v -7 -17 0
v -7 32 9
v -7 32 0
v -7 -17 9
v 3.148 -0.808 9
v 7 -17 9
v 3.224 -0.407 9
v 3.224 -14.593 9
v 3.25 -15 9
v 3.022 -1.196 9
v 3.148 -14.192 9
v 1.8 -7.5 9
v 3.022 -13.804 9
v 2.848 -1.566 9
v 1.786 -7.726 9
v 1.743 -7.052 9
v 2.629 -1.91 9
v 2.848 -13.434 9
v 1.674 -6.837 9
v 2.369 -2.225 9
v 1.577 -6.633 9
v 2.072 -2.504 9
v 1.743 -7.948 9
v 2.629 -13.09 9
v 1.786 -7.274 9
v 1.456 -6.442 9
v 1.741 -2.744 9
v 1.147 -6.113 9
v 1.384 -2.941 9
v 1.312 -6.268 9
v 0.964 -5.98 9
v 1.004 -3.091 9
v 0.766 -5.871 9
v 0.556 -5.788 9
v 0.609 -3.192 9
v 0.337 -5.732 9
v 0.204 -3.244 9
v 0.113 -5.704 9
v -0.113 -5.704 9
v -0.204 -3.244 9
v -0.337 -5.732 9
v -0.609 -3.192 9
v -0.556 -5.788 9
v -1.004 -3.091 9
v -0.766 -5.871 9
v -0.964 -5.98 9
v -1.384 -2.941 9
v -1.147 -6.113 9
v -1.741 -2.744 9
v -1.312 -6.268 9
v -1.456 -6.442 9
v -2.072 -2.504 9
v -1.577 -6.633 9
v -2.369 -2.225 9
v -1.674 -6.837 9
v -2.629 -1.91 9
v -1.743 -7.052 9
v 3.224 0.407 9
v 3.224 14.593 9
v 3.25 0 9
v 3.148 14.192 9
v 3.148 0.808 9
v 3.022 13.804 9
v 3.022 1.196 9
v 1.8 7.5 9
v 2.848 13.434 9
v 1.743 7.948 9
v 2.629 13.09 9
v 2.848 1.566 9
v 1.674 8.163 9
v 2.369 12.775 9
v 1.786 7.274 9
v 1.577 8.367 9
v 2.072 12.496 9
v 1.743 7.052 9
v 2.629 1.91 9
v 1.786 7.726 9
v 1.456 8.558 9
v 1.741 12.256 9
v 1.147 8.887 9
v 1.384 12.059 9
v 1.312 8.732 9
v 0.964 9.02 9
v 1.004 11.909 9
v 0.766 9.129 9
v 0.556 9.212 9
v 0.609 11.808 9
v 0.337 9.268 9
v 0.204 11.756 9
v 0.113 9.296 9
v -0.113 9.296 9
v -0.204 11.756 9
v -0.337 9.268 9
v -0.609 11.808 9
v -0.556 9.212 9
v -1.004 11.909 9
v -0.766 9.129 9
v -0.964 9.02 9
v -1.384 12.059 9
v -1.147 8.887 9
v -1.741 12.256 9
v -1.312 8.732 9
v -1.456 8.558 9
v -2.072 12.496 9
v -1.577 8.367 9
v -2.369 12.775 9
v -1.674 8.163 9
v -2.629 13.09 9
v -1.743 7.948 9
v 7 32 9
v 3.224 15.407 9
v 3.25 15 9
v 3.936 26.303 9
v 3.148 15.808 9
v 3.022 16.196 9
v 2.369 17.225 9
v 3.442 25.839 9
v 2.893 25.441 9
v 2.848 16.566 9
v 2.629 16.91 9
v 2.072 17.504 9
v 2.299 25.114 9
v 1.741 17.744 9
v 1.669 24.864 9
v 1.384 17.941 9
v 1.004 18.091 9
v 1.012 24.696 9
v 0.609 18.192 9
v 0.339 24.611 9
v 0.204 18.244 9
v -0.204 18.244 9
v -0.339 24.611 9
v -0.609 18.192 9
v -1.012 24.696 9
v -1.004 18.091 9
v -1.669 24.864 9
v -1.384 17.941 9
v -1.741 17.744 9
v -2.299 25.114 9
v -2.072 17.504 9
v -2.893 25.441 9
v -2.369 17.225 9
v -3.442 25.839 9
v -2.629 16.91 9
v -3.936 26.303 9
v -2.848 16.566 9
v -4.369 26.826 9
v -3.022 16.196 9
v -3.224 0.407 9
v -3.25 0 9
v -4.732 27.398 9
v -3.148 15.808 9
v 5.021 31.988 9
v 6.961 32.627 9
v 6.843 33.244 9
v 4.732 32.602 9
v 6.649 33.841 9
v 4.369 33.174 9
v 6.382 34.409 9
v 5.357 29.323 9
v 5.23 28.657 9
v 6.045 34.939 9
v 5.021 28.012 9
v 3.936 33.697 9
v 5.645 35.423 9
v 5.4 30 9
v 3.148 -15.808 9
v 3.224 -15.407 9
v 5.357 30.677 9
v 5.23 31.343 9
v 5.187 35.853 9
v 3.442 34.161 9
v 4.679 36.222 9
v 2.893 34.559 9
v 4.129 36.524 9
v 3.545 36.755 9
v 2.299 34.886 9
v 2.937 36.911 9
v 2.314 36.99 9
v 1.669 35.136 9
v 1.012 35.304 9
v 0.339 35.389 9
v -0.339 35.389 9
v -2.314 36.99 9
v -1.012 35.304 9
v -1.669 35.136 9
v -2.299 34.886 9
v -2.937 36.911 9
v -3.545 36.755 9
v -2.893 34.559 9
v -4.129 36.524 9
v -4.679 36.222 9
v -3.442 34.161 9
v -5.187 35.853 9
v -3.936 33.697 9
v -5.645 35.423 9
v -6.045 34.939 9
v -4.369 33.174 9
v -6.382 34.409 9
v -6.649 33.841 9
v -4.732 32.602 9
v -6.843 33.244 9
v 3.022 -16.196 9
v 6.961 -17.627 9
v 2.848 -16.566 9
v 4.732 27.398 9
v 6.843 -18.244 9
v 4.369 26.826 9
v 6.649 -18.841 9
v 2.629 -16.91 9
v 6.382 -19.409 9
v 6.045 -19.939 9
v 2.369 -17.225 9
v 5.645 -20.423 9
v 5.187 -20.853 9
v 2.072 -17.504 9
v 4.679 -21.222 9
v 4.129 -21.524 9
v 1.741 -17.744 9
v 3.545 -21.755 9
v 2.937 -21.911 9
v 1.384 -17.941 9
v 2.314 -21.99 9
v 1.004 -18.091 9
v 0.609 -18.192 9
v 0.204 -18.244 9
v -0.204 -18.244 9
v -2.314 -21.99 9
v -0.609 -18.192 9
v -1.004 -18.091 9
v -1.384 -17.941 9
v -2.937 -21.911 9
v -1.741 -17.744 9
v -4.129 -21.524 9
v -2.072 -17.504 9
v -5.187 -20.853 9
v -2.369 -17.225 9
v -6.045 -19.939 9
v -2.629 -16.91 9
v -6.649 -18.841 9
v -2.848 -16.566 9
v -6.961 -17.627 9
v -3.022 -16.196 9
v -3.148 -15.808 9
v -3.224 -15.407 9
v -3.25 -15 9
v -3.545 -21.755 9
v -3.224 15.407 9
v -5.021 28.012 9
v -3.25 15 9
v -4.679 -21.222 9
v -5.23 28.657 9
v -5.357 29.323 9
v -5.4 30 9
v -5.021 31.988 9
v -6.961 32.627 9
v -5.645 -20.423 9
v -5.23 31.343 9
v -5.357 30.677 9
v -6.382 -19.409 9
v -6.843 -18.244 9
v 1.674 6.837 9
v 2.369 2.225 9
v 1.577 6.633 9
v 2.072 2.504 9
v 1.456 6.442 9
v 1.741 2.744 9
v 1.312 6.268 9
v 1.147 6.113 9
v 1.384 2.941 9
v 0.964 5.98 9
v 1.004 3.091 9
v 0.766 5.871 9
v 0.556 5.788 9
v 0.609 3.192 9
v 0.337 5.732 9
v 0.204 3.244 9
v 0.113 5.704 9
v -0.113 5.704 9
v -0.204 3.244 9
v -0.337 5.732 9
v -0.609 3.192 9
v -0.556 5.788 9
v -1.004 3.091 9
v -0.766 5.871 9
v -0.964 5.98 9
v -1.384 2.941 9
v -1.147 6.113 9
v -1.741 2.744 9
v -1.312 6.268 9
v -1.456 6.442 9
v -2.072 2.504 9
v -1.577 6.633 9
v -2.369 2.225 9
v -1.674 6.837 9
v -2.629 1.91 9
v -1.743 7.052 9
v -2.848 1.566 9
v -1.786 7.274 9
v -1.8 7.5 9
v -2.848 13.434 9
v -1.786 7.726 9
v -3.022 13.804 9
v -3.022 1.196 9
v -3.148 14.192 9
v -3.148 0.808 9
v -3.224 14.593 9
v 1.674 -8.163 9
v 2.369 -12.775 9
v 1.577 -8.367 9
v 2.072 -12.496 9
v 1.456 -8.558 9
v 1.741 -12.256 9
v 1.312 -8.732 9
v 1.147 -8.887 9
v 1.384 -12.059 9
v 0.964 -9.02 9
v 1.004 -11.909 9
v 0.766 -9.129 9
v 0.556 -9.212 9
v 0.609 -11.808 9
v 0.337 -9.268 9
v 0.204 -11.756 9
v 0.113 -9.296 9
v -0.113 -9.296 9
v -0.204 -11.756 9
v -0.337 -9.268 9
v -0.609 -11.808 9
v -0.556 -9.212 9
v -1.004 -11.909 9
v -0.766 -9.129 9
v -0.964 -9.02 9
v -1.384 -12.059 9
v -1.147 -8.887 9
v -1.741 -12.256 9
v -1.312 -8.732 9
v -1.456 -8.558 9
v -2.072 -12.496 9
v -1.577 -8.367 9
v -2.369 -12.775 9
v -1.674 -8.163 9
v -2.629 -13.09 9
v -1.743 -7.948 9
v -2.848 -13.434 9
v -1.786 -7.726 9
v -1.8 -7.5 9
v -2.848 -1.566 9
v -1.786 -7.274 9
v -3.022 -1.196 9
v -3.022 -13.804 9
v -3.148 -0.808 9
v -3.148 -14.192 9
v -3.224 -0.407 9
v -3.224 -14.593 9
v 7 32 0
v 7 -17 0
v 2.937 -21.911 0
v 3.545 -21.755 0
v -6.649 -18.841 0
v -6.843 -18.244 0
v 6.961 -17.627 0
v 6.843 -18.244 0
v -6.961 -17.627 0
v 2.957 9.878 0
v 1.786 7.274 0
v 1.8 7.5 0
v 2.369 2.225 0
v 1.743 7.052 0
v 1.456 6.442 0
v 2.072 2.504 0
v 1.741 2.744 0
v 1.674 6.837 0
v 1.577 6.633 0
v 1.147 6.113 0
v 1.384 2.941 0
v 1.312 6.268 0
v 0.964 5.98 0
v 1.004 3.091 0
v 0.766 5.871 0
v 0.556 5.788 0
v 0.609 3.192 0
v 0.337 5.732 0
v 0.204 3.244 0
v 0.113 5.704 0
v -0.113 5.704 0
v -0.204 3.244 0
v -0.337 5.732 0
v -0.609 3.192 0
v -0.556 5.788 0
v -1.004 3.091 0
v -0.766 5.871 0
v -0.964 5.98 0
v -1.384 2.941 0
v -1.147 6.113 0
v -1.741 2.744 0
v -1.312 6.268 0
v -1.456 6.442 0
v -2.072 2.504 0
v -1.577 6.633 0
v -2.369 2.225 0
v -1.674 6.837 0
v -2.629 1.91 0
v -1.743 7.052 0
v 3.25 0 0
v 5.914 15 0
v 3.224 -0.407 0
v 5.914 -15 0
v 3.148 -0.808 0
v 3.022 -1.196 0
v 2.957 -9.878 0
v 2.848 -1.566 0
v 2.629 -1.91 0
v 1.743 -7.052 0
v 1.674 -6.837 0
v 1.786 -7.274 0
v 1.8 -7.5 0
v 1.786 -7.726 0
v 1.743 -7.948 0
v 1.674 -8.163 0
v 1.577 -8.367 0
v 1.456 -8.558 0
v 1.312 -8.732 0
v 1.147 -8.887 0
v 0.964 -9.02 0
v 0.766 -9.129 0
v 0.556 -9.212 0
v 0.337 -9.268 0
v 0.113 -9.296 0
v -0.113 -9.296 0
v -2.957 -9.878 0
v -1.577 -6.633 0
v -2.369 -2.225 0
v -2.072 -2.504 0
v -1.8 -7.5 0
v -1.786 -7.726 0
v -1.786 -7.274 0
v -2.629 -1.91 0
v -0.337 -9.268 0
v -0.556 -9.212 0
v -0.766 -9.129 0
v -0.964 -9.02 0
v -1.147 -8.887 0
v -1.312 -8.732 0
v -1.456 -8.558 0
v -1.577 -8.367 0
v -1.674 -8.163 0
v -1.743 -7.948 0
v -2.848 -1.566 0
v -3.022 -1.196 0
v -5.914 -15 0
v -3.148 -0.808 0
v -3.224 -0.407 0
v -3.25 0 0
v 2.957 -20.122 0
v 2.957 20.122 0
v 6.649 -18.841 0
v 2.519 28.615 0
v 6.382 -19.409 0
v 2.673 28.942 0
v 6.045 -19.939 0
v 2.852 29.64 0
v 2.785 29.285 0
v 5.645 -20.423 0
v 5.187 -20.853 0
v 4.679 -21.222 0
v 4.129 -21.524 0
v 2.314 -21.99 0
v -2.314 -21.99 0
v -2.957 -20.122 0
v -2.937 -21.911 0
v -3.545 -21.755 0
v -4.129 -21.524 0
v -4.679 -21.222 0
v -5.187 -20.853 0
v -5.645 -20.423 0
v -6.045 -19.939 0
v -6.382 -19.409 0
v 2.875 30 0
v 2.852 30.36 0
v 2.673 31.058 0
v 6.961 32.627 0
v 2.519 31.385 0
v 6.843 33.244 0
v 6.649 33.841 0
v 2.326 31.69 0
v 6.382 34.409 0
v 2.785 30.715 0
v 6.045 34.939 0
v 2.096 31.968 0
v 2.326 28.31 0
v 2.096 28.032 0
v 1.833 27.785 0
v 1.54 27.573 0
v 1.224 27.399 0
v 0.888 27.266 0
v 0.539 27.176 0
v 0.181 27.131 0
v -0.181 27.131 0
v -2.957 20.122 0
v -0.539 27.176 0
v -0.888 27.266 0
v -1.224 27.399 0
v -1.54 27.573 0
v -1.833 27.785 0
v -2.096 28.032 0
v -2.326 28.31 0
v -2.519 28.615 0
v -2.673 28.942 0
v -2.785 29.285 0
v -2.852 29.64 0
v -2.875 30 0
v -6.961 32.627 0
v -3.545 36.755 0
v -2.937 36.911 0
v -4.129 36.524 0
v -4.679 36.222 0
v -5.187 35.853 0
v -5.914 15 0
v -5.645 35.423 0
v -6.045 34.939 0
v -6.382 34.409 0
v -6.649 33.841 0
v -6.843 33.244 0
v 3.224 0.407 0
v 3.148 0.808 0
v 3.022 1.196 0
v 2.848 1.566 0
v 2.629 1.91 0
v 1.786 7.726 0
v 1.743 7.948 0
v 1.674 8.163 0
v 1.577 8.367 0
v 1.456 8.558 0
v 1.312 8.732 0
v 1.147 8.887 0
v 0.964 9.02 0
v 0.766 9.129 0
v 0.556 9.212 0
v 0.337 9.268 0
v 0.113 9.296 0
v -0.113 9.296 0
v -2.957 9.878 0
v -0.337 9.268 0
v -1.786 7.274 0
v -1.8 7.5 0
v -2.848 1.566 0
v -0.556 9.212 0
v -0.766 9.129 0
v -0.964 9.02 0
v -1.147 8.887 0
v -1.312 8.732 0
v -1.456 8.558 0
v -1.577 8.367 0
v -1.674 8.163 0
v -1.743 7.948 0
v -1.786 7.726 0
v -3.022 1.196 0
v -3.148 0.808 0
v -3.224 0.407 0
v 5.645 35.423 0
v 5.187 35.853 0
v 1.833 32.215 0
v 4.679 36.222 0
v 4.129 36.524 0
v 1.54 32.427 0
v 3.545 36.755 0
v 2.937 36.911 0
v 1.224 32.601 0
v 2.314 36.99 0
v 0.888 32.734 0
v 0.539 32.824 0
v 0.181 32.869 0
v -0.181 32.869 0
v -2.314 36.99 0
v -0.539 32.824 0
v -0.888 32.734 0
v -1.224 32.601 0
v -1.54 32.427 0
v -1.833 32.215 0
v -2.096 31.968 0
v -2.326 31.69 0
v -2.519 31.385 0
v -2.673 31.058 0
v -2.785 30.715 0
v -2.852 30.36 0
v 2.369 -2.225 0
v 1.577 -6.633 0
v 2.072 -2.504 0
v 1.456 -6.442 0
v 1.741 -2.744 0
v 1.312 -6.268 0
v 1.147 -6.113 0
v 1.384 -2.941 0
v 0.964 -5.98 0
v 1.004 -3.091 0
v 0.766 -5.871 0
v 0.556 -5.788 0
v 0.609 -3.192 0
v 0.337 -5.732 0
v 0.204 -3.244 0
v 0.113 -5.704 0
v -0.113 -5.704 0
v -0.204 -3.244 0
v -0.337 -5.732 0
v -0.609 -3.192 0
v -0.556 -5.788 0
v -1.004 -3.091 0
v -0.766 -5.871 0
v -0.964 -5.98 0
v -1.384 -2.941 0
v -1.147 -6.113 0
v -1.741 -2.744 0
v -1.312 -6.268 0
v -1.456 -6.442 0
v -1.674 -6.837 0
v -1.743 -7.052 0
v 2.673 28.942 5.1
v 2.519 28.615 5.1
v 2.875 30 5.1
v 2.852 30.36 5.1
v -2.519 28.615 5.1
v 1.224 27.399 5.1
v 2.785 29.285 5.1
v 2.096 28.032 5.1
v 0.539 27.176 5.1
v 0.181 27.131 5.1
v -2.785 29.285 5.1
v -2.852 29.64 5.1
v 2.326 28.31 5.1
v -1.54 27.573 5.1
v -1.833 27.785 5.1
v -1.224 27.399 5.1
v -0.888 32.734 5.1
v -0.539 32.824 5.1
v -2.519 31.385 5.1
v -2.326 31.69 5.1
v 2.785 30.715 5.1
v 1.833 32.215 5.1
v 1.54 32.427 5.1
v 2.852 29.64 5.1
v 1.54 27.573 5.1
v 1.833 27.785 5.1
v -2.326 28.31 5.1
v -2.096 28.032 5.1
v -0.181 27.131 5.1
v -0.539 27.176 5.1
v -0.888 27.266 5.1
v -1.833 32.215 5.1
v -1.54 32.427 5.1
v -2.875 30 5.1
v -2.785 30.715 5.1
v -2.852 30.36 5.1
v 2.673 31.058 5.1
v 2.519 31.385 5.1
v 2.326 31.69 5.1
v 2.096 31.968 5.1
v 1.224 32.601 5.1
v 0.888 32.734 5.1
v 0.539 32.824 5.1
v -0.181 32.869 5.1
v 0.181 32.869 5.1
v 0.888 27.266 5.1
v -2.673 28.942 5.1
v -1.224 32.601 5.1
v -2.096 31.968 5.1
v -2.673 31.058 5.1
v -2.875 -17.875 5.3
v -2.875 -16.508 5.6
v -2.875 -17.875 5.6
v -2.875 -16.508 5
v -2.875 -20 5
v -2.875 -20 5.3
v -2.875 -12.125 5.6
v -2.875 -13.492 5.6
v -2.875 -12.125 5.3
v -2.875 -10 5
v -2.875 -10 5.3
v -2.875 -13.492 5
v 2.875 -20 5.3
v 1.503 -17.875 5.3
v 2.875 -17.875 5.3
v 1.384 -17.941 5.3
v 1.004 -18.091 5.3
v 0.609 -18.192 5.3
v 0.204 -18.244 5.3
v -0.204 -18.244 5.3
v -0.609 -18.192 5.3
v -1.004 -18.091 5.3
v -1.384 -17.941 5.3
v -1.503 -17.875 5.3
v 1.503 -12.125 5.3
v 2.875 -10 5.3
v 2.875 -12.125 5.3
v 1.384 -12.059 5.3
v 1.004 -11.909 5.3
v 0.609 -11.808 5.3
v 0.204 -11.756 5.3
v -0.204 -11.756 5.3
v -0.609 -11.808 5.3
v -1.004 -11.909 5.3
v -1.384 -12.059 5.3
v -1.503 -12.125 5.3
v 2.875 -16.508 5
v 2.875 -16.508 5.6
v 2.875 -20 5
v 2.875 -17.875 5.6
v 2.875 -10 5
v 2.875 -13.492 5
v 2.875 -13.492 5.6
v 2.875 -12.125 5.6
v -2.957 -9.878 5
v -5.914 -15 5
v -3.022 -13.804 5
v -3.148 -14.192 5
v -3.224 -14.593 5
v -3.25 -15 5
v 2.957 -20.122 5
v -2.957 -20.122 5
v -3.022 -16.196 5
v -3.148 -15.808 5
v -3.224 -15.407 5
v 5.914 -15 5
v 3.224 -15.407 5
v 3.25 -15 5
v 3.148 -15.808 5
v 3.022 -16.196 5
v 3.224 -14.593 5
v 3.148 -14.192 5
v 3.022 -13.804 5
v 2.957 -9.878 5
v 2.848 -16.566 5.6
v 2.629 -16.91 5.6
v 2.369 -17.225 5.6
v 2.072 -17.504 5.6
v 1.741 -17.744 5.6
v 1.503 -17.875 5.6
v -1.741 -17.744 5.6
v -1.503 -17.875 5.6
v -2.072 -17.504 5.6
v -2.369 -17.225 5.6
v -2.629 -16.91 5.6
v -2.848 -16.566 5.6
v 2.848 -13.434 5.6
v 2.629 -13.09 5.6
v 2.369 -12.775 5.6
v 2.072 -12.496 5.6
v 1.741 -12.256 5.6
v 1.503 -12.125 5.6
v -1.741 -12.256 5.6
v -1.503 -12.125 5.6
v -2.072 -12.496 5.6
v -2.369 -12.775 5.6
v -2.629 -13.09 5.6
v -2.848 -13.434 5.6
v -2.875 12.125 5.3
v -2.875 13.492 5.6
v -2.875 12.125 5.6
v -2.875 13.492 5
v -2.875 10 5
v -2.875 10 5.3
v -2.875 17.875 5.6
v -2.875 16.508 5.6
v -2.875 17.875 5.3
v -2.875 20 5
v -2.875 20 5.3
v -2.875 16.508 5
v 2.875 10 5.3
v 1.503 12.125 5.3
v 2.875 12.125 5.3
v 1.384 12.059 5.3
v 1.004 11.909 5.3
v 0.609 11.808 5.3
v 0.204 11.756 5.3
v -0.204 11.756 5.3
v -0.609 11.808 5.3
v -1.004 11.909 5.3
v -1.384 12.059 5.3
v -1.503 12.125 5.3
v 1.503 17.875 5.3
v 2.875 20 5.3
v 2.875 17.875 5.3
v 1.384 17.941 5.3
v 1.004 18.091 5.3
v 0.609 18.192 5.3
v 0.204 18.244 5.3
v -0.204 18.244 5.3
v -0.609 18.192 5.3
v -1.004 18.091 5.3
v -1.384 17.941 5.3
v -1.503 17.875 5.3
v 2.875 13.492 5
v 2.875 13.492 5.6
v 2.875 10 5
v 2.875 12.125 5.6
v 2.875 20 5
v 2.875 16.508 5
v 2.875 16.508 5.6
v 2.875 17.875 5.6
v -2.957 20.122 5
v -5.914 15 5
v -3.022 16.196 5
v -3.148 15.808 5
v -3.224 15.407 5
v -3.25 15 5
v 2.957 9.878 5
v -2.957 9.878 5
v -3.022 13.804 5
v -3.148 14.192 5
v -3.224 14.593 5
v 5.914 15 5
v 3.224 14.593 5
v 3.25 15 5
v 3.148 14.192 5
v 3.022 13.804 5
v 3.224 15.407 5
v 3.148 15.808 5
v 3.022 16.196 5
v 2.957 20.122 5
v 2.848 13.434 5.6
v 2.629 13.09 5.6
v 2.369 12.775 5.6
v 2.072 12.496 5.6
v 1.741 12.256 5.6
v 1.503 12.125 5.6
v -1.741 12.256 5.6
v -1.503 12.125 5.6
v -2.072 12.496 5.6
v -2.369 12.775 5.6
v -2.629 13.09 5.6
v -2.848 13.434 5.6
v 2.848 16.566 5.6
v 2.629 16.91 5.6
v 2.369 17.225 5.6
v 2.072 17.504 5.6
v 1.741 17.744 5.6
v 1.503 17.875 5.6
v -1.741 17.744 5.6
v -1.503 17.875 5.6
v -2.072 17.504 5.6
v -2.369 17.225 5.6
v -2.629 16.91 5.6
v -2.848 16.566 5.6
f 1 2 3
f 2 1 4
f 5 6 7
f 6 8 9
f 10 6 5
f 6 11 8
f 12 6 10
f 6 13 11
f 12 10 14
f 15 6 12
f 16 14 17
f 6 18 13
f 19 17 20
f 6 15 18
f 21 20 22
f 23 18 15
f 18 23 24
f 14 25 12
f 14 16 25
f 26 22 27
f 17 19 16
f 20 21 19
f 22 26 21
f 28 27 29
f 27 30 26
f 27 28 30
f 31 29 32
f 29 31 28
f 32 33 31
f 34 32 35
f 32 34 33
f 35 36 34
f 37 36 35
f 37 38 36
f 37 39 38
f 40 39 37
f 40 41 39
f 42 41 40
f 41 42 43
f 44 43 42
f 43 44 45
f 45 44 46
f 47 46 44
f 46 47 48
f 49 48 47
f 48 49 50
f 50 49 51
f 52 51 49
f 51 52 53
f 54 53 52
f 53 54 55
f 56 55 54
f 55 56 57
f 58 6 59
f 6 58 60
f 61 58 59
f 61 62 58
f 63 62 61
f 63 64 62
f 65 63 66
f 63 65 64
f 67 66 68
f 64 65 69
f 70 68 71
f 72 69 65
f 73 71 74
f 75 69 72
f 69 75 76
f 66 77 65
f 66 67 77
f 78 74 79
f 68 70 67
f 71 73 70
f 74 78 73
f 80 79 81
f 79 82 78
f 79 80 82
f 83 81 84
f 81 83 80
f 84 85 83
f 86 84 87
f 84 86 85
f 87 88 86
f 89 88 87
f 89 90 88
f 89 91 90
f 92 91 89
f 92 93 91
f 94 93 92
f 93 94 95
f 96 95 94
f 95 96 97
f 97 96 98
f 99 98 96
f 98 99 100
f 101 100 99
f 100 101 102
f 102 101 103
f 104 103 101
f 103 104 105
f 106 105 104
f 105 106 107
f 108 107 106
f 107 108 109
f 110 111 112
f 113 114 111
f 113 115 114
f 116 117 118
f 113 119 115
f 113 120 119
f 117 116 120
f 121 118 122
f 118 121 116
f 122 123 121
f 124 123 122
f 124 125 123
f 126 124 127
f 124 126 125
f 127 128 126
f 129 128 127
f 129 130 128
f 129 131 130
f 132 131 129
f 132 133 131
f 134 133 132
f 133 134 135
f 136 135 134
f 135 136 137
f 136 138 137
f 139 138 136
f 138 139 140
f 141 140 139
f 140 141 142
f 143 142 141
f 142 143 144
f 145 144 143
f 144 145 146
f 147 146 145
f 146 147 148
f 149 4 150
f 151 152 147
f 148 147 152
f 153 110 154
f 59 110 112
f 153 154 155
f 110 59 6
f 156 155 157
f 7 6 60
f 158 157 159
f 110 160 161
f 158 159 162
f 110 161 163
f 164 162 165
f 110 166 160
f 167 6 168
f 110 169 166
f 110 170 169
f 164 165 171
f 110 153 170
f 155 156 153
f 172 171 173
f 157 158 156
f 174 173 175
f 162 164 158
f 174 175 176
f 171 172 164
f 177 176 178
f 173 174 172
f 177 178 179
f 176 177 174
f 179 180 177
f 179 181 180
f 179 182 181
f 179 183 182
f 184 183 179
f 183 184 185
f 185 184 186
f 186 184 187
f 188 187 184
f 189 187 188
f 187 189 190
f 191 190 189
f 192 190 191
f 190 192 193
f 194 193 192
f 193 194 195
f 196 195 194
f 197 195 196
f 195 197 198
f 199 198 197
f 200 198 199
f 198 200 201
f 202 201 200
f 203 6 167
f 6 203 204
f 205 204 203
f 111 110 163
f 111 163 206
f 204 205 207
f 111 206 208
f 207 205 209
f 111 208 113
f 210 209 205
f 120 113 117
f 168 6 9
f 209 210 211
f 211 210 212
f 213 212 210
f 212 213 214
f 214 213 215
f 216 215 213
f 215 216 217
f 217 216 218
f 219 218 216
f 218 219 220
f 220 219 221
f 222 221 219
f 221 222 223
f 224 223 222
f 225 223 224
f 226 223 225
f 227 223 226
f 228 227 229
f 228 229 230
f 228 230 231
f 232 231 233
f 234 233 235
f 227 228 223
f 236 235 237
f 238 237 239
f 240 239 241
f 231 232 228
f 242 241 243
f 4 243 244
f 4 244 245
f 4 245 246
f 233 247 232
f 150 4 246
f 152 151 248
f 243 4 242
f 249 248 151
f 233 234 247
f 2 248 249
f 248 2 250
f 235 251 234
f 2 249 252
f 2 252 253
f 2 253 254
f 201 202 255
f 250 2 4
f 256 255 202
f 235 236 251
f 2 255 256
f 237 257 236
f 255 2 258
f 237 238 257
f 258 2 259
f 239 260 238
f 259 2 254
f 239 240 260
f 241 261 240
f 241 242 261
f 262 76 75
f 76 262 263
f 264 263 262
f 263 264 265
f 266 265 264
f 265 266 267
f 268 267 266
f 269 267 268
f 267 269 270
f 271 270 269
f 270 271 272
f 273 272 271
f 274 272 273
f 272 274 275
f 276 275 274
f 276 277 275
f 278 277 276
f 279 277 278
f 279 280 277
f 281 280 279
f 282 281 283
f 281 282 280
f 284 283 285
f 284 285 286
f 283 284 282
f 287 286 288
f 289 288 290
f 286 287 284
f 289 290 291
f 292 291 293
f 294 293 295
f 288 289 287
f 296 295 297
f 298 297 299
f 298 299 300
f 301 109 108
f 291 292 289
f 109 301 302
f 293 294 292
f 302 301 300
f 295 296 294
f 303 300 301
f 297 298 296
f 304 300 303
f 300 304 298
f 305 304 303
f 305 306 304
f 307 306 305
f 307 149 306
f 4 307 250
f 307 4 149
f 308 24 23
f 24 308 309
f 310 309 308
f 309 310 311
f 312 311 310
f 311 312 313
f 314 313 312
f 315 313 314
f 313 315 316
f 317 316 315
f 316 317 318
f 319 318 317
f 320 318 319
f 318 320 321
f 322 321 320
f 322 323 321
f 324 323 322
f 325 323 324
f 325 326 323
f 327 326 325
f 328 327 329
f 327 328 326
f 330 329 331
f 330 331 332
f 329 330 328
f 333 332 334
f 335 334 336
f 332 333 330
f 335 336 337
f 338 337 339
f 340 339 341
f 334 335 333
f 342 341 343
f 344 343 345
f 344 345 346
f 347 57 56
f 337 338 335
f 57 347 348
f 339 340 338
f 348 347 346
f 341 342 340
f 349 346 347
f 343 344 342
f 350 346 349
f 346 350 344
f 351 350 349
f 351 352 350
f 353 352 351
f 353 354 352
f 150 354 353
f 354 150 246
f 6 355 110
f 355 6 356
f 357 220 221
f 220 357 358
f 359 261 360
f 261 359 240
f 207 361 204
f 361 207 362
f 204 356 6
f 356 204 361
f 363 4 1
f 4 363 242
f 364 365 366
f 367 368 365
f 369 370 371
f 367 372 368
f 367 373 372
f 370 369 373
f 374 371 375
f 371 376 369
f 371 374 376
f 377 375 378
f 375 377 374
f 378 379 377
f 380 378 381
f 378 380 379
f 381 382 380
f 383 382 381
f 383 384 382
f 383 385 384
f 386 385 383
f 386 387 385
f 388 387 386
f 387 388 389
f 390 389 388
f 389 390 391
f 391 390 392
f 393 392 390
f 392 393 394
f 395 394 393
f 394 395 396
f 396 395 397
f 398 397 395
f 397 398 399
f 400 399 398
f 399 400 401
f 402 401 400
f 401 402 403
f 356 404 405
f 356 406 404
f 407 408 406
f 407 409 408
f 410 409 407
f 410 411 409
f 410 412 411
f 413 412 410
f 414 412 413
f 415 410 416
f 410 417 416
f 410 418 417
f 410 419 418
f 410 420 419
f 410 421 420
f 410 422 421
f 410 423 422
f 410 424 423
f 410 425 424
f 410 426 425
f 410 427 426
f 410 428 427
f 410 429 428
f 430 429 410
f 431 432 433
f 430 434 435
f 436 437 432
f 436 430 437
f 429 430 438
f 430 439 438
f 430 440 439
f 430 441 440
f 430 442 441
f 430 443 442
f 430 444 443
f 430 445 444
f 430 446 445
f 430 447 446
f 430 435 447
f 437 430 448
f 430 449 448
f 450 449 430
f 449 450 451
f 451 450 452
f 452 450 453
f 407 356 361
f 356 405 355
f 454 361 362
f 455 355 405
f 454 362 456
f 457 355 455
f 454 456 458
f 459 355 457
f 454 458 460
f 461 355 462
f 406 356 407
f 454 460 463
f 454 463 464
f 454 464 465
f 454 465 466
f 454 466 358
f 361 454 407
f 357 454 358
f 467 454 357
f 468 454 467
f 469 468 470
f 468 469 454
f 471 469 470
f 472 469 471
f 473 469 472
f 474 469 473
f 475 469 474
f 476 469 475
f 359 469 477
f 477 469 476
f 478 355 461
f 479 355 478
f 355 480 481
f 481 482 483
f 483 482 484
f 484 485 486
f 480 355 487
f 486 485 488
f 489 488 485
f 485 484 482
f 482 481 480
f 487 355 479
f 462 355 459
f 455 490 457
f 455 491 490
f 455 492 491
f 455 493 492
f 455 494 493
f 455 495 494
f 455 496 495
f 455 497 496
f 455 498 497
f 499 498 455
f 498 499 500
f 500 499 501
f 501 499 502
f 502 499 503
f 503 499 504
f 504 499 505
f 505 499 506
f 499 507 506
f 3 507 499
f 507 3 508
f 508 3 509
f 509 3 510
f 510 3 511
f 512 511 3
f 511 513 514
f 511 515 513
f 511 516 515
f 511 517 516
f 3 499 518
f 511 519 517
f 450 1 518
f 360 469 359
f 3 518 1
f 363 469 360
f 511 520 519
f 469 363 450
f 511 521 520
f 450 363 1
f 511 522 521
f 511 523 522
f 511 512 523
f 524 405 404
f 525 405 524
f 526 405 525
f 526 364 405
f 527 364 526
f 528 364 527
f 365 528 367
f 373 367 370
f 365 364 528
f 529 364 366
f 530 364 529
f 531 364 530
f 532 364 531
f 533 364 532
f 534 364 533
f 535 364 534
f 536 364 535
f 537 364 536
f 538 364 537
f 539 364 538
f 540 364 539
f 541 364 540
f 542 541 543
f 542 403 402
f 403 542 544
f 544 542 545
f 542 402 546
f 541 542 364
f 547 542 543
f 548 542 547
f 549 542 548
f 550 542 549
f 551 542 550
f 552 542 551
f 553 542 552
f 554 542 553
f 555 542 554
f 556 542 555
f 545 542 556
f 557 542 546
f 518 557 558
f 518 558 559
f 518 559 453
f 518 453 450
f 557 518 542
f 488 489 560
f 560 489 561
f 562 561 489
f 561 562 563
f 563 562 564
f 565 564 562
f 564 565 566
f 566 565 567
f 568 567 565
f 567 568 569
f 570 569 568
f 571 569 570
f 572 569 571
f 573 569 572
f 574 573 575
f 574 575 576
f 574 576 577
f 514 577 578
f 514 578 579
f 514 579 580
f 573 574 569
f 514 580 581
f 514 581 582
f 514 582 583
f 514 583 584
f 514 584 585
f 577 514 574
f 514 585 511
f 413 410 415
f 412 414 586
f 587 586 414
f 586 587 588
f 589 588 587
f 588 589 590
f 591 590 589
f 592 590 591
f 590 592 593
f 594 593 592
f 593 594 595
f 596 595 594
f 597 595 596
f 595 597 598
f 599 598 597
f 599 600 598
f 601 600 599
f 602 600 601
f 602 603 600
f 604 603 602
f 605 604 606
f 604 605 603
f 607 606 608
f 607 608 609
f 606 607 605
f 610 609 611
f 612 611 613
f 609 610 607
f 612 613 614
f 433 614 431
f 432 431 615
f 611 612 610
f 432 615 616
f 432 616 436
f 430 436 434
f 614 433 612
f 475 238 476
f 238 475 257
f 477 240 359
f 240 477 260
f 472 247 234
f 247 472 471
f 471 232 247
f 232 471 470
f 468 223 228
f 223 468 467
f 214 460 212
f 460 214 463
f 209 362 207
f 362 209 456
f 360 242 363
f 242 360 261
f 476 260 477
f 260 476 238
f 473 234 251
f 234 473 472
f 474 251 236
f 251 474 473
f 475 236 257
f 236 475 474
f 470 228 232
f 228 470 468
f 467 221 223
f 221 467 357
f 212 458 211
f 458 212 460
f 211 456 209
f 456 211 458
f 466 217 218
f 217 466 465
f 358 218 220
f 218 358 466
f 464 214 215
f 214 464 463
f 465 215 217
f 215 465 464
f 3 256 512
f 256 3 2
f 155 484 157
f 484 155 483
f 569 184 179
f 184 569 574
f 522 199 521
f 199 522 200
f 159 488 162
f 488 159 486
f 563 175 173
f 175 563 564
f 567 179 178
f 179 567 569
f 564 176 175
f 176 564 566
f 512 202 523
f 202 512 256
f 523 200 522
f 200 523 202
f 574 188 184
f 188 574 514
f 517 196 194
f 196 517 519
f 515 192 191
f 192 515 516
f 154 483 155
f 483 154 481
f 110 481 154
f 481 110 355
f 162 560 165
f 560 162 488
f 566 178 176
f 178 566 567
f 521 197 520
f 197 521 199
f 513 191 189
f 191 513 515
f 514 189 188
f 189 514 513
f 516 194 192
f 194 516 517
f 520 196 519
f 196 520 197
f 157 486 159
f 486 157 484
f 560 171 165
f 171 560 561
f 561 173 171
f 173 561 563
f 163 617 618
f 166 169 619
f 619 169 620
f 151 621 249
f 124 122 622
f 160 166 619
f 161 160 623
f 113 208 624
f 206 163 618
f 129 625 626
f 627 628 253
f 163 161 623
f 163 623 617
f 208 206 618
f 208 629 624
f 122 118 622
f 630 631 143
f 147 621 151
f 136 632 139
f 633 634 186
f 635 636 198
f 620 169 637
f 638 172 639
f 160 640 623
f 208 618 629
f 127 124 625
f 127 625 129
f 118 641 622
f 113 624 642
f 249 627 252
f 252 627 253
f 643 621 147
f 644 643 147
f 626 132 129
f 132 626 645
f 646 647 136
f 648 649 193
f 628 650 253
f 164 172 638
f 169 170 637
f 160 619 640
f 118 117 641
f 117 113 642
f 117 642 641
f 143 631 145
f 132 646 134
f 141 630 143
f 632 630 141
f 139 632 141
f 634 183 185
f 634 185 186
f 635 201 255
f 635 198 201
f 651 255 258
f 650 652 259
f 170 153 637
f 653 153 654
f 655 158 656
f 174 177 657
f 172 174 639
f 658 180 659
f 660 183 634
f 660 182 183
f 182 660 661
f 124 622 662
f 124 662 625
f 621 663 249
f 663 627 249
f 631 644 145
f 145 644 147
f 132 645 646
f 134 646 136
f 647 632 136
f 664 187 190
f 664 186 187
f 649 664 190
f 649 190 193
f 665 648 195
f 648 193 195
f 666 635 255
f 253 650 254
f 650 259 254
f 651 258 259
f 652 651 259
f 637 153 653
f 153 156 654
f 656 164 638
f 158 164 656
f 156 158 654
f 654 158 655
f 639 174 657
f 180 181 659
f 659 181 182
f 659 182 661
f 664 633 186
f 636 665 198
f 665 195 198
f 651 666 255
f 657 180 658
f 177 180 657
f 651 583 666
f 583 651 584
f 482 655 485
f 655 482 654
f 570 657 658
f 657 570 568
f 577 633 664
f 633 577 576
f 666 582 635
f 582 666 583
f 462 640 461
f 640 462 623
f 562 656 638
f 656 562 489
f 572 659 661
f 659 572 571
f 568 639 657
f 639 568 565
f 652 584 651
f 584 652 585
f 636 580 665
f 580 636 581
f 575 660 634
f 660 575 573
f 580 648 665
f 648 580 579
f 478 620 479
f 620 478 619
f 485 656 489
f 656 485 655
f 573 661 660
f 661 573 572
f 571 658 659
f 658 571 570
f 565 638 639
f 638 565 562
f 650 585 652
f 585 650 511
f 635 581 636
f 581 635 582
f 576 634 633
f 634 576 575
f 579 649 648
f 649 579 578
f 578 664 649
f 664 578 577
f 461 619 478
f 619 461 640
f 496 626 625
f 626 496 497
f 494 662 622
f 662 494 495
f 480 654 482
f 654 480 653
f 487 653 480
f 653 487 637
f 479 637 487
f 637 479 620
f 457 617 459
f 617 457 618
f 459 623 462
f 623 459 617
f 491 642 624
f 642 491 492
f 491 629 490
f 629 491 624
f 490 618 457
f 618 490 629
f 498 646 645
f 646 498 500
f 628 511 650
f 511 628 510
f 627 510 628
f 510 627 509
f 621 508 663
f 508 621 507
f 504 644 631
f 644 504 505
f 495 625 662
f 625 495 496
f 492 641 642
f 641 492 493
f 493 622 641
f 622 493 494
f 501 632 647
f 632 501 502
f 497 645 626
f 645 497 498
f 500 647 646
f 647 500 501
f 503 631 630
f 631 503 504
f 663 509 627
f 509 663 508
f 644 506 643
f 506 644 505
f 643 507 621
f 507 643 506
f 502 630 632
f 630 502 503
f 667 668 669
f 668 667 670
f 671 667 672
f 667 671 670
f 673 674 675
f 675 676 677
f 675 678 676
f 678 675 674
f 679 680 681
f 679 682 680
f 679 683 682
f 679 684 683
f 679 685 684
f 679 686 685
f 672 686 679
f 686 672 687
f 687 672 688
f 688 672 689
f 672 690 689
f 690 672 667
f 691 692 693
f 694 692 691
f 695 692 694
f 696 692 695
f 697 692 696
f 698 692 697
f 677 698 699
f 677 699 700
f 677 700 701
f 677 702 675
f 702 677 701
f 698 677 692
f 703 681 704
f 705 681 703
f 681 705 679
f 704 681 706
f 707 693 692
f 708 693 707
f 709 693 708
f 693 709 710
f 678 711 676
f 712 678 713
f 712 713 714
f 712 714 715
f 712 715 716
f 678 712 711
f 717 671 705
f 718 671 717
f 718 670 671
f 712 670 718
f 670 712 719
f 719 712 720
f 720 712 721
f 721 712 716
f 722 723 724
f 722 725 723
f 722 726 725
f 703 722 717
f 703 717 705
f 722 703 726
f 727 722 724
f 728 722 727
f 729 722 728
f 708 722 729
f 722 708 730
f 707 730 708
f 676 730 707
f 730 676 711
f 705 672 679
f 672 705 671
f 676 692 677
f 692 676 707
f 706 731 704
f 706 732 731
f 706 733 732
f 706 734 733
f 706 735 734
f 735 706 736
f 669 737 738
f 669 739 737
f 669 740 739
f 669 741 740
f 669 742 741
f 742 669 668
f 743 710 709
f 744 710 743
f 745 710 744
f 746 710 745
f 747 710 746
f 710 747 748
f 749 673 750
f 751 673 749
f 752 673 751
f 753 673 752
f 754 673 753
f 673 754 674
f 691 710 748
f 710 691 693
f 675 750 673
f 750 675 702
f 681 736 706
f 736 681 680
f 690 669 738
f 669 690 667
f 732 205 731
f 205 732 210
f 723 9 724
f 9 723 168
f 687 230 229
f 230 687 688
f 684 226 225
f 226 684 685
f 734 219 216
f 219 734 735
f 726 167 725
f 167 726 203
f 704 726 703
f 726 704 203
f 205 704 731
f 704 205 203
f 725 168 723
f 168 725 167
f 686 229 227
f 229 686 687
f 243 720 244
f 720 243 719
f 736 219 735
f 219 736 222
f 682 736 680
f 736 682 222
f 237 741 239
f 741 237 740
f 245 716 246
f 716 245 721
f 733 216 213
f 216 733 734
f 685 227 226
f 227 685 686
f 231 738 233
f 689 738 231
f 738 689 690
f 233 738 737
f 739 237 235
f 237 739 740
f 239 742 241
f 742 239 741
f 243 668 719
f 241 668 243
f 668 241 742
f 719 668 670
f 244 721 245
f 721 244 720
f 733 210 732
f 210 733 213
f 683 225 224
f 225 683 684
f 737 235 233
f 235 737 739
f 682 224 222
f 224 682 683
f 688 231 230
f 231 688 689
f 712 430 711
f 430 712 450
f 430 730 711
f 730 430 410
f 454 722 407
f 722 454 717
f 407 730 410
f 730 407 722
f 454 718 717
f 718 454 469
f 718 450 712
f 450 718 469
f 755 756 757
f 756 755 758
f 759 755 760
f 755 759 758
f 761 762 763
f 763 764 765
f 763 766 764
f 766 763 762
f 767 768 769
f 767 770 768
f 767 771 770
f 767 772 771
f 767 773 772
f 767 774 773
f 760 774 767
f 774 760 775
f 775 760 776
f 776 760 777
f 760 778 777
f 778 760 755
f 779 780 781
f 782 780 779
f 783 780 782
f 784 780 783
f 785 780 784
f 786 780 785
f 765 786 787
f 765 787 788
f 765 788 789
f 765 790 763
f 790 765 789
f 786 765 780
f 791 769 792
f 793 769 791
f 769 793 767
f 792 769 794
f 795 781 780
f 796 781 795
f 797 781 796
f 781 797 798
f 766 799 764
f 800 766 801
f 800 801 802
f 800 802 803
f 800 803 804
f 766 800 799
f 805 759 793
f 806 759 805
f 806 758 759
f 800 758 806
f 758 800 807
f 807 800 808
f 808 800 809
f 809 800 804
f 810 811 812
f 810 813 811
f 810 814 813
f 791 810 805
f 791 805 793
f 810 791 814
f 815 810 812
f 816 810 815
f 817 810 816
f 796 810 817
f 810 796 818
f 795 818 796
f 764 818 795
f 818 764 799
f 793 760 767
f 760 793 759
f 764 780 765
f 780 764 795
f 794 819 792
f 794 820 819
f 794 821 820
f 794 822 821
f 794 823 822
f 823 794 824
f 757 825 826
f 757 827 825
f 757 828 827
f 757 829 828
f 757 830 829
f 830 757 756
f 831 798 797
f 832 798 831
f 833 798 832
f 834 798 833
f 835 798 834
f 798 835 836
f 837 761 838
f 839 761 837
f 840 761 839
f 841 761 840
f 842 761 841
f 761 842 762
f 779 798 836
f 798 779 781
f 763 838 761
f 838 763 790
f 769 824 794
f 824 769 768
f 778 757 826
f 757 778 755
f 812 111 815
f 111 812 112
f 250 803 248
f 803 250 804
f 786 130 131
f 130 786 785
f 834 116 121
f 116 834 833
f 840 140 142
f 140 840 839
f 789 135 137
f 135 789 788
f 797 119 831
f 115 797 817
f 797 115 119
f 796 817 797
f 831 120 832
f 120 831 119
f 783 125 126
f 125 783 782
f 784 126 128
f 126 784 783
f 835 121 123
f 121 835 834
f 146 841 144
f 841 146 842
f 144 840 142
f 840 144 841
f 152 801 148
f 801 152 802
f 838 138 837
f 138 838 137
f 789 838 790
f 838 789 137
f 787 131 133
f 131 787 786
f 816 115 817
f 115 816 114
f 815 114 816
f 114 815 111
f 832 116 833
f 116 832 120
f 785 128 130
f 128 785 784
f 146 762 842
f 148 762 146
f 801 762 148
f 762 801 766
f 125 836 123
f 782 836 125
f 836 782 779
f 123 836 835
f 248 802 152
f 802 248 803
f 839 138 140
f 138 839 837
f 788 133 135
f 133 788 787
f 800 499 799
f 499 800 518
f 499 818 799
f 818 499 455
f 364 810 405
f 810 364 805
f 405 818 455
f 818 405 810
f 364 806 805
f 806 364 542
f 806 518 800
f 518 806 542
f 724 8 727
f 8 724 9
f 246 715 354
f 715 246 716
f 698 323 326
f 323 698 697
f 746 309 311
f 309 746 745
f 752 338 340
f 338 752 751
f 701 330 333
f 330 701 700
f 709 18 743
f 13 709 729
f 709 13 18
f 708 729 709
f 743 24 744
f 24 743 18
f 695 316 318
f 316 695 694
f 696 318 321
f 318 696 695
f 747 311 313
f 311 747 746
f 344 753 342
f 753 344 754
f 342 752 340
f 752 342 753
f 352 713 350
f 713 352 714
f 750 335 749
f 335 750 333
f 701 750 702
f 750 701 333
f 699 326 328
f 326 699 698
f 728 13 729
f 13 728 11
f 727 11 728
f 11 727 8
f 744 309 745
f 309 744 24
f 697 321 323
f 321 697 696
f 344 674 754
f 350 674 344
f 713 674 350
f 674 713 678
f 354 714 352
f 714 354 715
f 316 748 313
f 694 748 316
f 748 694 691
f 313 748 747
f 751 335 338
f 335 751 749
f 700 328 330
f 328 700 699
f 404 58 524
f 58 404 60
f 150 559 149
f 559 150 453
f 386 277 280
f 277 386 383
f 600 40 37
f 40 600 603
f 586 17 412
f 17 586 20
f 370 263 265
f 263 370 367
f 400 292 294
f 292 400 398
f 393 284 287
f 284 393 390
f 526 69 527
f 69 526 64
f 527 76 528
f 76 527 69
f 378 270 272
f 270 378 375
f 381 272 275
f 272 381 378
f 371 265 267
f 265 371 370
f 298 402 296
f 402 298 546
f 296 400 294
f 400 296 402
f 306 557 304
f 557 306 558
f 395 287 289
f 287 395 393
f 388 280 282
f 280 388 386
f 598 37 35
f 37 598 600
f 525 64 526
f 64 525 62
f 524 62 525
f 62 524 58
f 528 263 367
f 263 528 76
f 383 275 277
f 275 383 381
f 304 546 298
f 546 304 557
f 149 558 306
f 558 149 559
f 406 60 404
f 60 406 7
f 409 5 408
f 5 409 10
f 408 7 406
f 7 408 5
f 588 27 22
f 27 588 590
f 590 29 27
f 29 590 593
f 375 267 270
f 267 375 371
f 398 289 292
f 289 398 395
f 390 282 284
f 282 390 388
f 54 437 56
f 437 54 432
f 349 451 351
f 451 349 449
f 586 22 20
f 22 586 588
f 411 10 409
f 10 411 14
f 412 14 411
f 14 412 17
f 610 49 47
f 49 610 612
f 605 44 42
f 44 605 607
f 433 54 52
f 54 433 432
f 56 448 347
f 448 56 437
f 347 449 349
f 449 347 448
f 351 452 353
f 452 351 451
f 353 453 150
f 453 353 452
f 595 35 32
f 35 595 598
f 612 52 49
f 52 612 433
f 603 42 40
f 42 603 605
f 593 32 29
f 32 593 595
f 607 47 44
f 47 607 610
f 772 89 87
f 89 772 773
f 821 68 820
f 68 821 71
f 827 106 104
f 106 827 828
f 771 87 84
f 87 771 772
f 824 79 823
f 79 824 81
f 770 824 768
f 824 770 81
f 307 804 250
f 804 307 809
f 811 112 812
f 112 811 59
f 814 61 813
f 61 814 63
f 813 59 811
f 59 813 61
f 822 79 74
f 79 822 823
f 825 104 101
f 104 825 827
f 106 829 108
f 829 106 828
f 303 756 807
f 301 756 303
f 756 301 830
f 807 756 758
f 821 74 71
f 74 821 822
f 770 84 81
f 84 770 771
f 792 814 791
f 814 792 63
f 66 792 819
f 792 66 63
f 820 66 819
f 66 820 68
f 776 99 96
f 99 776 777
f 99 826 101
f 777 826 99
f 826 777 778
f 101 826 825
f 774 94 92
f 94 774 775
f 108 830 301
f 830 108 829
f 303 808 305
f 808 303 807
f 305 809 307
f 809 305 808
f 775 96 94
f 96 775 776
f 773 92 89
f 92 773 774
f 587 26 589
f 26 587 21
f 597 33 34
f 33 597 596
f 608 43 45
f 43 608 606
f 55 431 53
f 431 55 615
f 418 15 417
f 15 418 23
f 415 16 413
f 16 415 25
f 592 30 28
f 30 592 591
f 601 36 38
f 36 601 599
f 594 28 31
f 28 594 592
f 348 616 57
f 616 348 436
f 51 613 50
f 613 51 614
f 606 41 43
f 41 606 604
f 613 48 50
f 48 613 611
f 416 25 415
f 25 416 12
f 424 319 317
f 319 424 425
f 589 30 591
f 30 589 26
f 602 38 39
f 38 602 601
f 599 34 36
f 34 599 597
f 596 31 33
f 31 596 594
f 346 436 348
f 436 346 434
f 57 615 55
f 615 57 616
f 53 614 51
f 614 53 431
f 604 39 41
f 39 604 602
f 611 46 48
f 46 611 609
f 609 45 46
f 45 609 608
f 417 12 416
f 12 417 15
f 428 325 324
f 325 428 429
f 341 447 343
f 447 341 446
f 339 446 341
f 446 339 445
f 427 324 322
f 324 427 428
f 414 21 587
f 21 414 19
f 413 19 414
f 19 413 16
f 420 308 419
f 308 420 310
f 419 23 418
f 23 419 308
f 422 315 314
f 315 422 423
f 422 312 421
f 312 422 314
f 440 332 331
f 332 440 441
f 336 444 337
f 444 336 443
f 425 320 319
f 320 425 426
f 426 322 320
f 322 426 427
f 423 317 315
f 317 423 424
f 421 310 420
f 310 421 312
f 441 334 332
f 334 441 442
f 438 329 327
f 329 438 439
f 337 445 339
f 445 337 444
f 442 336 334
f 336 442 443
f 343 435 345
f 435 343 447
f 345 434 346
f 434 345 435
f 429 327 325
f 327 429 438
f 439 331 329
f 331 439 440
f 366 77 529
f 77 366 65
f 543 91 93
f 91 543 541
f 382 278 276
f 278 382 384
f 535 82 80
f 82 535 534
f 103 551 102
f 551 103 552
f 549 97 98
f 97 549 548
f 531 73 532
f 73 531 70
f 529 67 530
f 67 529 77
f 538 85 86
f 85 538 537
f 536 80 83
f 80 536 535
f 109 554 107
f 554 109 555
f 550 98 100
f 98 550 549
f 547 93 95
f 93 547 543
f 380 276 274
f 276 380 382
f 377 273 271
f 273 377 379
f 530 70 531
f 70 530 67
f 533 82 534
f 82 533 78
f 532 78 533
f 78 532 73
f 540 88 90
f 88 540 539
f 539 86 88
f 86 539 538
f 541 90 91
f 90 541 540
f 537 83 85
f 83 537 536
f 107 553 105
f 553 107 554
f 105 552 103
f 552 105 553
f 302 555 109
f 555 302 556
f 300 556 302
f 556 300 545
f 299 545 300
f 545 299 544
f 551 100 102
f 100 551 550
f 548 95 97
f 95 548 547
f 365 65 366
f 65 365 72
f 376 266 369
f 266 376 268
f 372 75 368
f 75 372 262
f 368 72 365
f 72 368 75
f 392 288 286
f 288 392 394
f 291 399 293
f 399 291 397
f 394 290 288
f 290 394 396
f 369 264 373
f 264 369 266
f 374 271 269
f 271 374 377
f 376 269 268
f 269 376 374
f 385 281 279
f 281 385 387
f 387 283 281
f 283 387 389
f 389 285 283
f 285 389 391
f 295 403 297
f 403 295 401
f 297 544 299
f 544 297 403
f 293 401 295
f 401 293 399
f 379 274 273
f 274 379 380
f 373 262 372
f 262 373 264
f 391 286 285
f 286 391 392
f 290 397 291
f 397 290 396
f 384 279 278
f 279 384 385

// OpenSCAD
$fn = 50;


difference() {
	union() {
		hull() {
			translate(v = [-2.0000000000, 17.0000000000, 0]) {
				cylinder(h = 9, r = 5);
			}
			translate(v = [2.0000000000, 17.0000000000, 0]) {
				cylinder(h = 9, r = 5);
			}
			translate(v = [-2.0000000000, -17.0000000000, 0]) {
				cylinder(h = 9, r = 5);
			}
			translate(v = [2.0000000000, -17.0000000000, 0]) {
				cylinder(h = 9, r = 5);
			}
		}
		translate(v = [0.0000000000, 22.5000000000, 0]) {
			hull() {
				translate(v = [-2.0000000000, 9.5000000000, 0]) {
					cylinder(h = 9, r = 5);
				}
				translate(v = [2.0000000000, 9.5000000000, 0]) {
					cylinder(h = 9, r = 5);
				}
				translate(v = [-2.0000000000, -9.5000000000, 0]) {
					cylinder(h = 9, r = 5);
				}
				translate(v = [2.0000000000, -9.5000000000, 0]) {
					cylinder(h = 9, r = 5);
				}
			}
		}
		translate(v = [0.0000000000, 22.5000000000, 0]) {
			hull() {
				translate(v = [-2.0000000000, 9.5000000000, 0]) {
					cylinder(h = 9, r = 5);
				}
				translate(v = [2.0000000000, 9.5000000000, 0]) {
					cylinder(h = 9, r = 5);
				}
				translate(v = [-2.0000000000, -9.5000000000, 0]) {
					cylinder(h = 9, r = 5);
				}
				translate(v = [2.0000000000, -9.5000000000, 0]) {
					cylinder(h = 9, r = 5);
				}
			}
		}
	}
	union() {
		translate(v = [0.0000000000, 30.0000000000, 9]) {
			rotate(a = [0, 0, 0]) {
				difference() {
					union() {
						#translate(v = [0, 0, -9.0000000000]) {
							cylinder(h = 9, r = 2.6000000000);
						}
						#translate(v = [0, 0, -3.9000000000]) {
							cylinder(h = 3.9000000000, r1 = 2.8750000000, r2 = 5.4000000000);
						}
						#translate(v = [0, 0, -9.0000000000]) {
							cylinder(h = 9, r = 2.8750000000);
						}
						#translate(v = [0, 0, -9.0000000000]) {
							cylinder(h = 9, r = 2.6000000000);
						}
					}
					union();
				}
			}
		}
		translate(v = [0.0000000000, 30.0000000000, 9]) {
			rotate(a = [0, 0, 0]) {
				difference() {
					union() {
						#translate(v = [0, 0, -9.0000000000]) {
							cylinder(h = 9, r = 2.6000000000);
						}
						#translate(v = [0, 0, -3.9000000000]) {
							cylinder(h = 3.9000000000, r1 = 2.8750000000, r2 = 5.4000000000);
						}
						#translate(v = [0, 0, -9.0000000000]) {
							cylinder(h = 9, r = 2.8750000000);
						}
						#translate(v = [0, 0, -9.0000000000]) {
							cylinder(h = 9, r = 2.6000000000);
						}
					}
					union();
				}
			}
		}
		translate(v = [0.0000000000, -15.0000000000, 0]) {
			rotate(a = [0, 0, 0]) {
				difference() {
					union() {
						#translate(v = [-2.8750000000, -5.0000000000, -0.3000000000]) {
							cube(size = [5.7500000000, 10, 0.3000000000]);
						}
						#translate(v = [-2.8750000000, -2.8750000000, -0.6000000000]) {
							cube(size = [5.7500000000, 5.7500000000, 0.3000000000]);
						}
						#translate(v = [-2.8750000000, -5.0000000000, 5]) {
							cube(size = [5.7500000000, 10, 0.3000000000]);
						}
						#translate(v = [-2.8750000000, -2.8750000000, 5.3000000000]) {
							cube(size = [5.7500000000, 5.7500000000, 0.3000000000]);
						}
						#translate(v = [0, 0, -100.0000000000]) {
							cylinder(h = 200, r = 3.2500000000);
						}
						#linear_extrude(height = 5) {
							polygon(points = [[5.9142500000, 0.0000000000], [2.9571250000, 5.1218907443], [-2.9571250000, 5.1218907443], [-5.9142500000, 0.0000000000], [-2.9571250000, -5.1218907443], [2.9571250000, -5.1218907443]]);
						}
						#translate(v = [-2.8750000000, -5.0000000000, -0.3000000000]) {
							cube(size = [5.7500000000, 10, 0.3000000000]);
						}
						#translate(v = [-2.8750000000, -2.8750000000, -0.6000000000]) {
							cube(size = [5.7500000000, 5.7500000000, 0.3000000000]);
						}
						#translate(v = [-2.8750000000, -5.0000000000, 5]) {
							cube(size = [5.7500000000, 10, 0.3000000000]);
						}
						#translate(v = [-2.8750000000, -2.8750000000, 5.3000000000]) {
							cube(size = [5.7500000000, 5.7500000000, 0.3000000000]);
						}
						#translate(v = [0, 0, -100.0000000000]) {
							cylinder(h = 200, r = 3.2500000000);
						}
						#translate(v = [-2.8750000000, -5.0000000000, -0.3000000000]) {
							cube(size = [5.7500000000, 10, 0.3000000000]);
						}
						#translate(v = [-2.8750000000, -2.8750000000, -0.6000000000]) {
							cube(size = [5.7500000000, 5.7500000000, 0.3000000000]);
						}
						#translate(v = [-2.8750000000, -5.0000000000, 5]) {
							cube(size = [5.7500000000, 10, 0.3000000000]);
						}
						#translate(v = [-2.8750000000, -2.8750000000, 5.3000000000]) {
							cube(size = [5.7500000000, 5.7500000000, 0.3000000000]);
						}
						#translate(v = [0, 0, -100.0000000000]) {
							cylinder(h = 200, r = 3.2500000000);
						}
					}
					union();
				}
			}
		}
		translate(v = [0.0000000000, 15.0000000000, 0]) {
			rotate(a = [0, 0, 0]) {
				difference() {
					union() {
						#translate(v = [-2.8750000000, -5.0000000000, -0.3000000000]) {
							cube(size = [5.7500000000, 10, 0.3000000000]);
						}
						#translate(v = [-2.8750000000, -2.8750000000, -0.6000000000]) {
							cube(size = [5.7500000000, 5.7500000000, 0.3000000000]);
						}
						#translate(v = [-2.8750000000, -5.0000000000, 5]) {
							cube(size = [5.7500000000, 10, 0.3000000000]);
						}
						#translate(v = [-2.8750000000, -2.8750000000, 5.3000000000]) {
							cube(size = [5.7500000000, 5.7500000000, 0.3000000000]);
						}
						#translate(v = [0, 0, -100.0000000000]) {
							cylinder(h = 200, r = 3.2500000000);
						}
						#linear_extrude(height = 5) {
							polygon(points = [[5.9142500000, 0.0000000000], [2.9571250000, 5.1218907443], [-2.9571250000, 5.1218907443], [-5.9142500000, 0.0000000000], [-2.9571250000, -5.1218907443], [2.9571250000, -5.1218907443]]);
						}
						#translate(v = [-2.8750000000, -5.0000000000, -0.3000000000]) {
							cube(size = [5.7500000000, 10, 0.3000000000]);
						}
						#translate(v = [-2.8750000000, -2.8750000000, -0.6000000000]) {
							cube(size = [5.7500000000, 5.7500000000, 0.3000000000]);
						}
						#translate(v = [-2.8750000000, -5.0000000000, 5]) {
							cube(size = [5.7500000000, 10, 0.3000000000]);
						}
						#translate(v = [-2.8750000000, -2.8750000000, 5.3000000000]) {
							cube(size = [5.7500000000, 5.7500000000, 0.3000000000]);
						}
						#translate(v = [0, 0, -100.0000000000]) {
							cylinder(h = 200, r = 3.2500000000);
						}
						#translate(v = [-2.8750000000, -5.0000000000, -0.3000000000]) {
							cube(size = [5.7500000000, 10, 0.3000000000]);
						}
						#translate(v = [-2.8750000000, -2.8750000000, -0.6000000000]) {
							cube(size = [5.7500000000, 5.7500000000, 0.3000000000]);
						}
						#translate(v = [-2.8750000000, -5.0000000000, 5]) {
							cube(size = [5.7500000000, 10, 0.3000000000]);
						}
						#translate(v = [-2.8750000000, -2.8750000000, 5.3000000000]) {
							cube(size = [5.7500000000, 5.7500000000, 0.3000000000]);
						}
						#translate(v = [0, 0, -100.0000000000]) {
							cylinder(h = 200, r = 3.2500000000);
						}
					}
					union();
				}
			}
		}
		translate(v = [0.0000000000, -15.0000000000, 0]) {
			translate(v = [0, 0, -100]) {
				cylinder(h = 200, r = 3.2500000000);
			}
		}
		translate(v = [0, 0, -100]) {
			cylinder(h = 200, r = 3.2500000000);
		}
		translate(v = [0.0000000000, 15.0000000000, 0]) {
			translate(v = [0, 0, -100]) {
				cylinder(h = 200, r = 3.2500000000);
			}
		}
		translate(v = [0.0000000000, -15.0000000000, 0]) {
			translate(v = [0, 0, -100]) {
				cylinder(h = 200, r = 1.8000000000);
			}
		}
		translate(v = [0.0000000000, -7.5000000000, 0]) {
			translate(v = [0, 0, -100]) {
				cylinder(h = 200, r = 1.8000000000);
			}
		}
		translate(v = [0, 0, -100]) {
			cylinder(h = 200, r = 1.8000000000);
		}
		translate(v = [0.0000000000, 7.5000000000, 0]) {
			translate(v = [0, 0, -100]) {
				cylinder(h = 200, r = 1.8000000000);
			}
		}
		translate(v = [0.0000000000, 15.0000000000, 0]) {
			translate(v = [0, 0, -100]) {
				cylinder(h = 200, r = 1.8000000000);
			}
		}
	}
}
